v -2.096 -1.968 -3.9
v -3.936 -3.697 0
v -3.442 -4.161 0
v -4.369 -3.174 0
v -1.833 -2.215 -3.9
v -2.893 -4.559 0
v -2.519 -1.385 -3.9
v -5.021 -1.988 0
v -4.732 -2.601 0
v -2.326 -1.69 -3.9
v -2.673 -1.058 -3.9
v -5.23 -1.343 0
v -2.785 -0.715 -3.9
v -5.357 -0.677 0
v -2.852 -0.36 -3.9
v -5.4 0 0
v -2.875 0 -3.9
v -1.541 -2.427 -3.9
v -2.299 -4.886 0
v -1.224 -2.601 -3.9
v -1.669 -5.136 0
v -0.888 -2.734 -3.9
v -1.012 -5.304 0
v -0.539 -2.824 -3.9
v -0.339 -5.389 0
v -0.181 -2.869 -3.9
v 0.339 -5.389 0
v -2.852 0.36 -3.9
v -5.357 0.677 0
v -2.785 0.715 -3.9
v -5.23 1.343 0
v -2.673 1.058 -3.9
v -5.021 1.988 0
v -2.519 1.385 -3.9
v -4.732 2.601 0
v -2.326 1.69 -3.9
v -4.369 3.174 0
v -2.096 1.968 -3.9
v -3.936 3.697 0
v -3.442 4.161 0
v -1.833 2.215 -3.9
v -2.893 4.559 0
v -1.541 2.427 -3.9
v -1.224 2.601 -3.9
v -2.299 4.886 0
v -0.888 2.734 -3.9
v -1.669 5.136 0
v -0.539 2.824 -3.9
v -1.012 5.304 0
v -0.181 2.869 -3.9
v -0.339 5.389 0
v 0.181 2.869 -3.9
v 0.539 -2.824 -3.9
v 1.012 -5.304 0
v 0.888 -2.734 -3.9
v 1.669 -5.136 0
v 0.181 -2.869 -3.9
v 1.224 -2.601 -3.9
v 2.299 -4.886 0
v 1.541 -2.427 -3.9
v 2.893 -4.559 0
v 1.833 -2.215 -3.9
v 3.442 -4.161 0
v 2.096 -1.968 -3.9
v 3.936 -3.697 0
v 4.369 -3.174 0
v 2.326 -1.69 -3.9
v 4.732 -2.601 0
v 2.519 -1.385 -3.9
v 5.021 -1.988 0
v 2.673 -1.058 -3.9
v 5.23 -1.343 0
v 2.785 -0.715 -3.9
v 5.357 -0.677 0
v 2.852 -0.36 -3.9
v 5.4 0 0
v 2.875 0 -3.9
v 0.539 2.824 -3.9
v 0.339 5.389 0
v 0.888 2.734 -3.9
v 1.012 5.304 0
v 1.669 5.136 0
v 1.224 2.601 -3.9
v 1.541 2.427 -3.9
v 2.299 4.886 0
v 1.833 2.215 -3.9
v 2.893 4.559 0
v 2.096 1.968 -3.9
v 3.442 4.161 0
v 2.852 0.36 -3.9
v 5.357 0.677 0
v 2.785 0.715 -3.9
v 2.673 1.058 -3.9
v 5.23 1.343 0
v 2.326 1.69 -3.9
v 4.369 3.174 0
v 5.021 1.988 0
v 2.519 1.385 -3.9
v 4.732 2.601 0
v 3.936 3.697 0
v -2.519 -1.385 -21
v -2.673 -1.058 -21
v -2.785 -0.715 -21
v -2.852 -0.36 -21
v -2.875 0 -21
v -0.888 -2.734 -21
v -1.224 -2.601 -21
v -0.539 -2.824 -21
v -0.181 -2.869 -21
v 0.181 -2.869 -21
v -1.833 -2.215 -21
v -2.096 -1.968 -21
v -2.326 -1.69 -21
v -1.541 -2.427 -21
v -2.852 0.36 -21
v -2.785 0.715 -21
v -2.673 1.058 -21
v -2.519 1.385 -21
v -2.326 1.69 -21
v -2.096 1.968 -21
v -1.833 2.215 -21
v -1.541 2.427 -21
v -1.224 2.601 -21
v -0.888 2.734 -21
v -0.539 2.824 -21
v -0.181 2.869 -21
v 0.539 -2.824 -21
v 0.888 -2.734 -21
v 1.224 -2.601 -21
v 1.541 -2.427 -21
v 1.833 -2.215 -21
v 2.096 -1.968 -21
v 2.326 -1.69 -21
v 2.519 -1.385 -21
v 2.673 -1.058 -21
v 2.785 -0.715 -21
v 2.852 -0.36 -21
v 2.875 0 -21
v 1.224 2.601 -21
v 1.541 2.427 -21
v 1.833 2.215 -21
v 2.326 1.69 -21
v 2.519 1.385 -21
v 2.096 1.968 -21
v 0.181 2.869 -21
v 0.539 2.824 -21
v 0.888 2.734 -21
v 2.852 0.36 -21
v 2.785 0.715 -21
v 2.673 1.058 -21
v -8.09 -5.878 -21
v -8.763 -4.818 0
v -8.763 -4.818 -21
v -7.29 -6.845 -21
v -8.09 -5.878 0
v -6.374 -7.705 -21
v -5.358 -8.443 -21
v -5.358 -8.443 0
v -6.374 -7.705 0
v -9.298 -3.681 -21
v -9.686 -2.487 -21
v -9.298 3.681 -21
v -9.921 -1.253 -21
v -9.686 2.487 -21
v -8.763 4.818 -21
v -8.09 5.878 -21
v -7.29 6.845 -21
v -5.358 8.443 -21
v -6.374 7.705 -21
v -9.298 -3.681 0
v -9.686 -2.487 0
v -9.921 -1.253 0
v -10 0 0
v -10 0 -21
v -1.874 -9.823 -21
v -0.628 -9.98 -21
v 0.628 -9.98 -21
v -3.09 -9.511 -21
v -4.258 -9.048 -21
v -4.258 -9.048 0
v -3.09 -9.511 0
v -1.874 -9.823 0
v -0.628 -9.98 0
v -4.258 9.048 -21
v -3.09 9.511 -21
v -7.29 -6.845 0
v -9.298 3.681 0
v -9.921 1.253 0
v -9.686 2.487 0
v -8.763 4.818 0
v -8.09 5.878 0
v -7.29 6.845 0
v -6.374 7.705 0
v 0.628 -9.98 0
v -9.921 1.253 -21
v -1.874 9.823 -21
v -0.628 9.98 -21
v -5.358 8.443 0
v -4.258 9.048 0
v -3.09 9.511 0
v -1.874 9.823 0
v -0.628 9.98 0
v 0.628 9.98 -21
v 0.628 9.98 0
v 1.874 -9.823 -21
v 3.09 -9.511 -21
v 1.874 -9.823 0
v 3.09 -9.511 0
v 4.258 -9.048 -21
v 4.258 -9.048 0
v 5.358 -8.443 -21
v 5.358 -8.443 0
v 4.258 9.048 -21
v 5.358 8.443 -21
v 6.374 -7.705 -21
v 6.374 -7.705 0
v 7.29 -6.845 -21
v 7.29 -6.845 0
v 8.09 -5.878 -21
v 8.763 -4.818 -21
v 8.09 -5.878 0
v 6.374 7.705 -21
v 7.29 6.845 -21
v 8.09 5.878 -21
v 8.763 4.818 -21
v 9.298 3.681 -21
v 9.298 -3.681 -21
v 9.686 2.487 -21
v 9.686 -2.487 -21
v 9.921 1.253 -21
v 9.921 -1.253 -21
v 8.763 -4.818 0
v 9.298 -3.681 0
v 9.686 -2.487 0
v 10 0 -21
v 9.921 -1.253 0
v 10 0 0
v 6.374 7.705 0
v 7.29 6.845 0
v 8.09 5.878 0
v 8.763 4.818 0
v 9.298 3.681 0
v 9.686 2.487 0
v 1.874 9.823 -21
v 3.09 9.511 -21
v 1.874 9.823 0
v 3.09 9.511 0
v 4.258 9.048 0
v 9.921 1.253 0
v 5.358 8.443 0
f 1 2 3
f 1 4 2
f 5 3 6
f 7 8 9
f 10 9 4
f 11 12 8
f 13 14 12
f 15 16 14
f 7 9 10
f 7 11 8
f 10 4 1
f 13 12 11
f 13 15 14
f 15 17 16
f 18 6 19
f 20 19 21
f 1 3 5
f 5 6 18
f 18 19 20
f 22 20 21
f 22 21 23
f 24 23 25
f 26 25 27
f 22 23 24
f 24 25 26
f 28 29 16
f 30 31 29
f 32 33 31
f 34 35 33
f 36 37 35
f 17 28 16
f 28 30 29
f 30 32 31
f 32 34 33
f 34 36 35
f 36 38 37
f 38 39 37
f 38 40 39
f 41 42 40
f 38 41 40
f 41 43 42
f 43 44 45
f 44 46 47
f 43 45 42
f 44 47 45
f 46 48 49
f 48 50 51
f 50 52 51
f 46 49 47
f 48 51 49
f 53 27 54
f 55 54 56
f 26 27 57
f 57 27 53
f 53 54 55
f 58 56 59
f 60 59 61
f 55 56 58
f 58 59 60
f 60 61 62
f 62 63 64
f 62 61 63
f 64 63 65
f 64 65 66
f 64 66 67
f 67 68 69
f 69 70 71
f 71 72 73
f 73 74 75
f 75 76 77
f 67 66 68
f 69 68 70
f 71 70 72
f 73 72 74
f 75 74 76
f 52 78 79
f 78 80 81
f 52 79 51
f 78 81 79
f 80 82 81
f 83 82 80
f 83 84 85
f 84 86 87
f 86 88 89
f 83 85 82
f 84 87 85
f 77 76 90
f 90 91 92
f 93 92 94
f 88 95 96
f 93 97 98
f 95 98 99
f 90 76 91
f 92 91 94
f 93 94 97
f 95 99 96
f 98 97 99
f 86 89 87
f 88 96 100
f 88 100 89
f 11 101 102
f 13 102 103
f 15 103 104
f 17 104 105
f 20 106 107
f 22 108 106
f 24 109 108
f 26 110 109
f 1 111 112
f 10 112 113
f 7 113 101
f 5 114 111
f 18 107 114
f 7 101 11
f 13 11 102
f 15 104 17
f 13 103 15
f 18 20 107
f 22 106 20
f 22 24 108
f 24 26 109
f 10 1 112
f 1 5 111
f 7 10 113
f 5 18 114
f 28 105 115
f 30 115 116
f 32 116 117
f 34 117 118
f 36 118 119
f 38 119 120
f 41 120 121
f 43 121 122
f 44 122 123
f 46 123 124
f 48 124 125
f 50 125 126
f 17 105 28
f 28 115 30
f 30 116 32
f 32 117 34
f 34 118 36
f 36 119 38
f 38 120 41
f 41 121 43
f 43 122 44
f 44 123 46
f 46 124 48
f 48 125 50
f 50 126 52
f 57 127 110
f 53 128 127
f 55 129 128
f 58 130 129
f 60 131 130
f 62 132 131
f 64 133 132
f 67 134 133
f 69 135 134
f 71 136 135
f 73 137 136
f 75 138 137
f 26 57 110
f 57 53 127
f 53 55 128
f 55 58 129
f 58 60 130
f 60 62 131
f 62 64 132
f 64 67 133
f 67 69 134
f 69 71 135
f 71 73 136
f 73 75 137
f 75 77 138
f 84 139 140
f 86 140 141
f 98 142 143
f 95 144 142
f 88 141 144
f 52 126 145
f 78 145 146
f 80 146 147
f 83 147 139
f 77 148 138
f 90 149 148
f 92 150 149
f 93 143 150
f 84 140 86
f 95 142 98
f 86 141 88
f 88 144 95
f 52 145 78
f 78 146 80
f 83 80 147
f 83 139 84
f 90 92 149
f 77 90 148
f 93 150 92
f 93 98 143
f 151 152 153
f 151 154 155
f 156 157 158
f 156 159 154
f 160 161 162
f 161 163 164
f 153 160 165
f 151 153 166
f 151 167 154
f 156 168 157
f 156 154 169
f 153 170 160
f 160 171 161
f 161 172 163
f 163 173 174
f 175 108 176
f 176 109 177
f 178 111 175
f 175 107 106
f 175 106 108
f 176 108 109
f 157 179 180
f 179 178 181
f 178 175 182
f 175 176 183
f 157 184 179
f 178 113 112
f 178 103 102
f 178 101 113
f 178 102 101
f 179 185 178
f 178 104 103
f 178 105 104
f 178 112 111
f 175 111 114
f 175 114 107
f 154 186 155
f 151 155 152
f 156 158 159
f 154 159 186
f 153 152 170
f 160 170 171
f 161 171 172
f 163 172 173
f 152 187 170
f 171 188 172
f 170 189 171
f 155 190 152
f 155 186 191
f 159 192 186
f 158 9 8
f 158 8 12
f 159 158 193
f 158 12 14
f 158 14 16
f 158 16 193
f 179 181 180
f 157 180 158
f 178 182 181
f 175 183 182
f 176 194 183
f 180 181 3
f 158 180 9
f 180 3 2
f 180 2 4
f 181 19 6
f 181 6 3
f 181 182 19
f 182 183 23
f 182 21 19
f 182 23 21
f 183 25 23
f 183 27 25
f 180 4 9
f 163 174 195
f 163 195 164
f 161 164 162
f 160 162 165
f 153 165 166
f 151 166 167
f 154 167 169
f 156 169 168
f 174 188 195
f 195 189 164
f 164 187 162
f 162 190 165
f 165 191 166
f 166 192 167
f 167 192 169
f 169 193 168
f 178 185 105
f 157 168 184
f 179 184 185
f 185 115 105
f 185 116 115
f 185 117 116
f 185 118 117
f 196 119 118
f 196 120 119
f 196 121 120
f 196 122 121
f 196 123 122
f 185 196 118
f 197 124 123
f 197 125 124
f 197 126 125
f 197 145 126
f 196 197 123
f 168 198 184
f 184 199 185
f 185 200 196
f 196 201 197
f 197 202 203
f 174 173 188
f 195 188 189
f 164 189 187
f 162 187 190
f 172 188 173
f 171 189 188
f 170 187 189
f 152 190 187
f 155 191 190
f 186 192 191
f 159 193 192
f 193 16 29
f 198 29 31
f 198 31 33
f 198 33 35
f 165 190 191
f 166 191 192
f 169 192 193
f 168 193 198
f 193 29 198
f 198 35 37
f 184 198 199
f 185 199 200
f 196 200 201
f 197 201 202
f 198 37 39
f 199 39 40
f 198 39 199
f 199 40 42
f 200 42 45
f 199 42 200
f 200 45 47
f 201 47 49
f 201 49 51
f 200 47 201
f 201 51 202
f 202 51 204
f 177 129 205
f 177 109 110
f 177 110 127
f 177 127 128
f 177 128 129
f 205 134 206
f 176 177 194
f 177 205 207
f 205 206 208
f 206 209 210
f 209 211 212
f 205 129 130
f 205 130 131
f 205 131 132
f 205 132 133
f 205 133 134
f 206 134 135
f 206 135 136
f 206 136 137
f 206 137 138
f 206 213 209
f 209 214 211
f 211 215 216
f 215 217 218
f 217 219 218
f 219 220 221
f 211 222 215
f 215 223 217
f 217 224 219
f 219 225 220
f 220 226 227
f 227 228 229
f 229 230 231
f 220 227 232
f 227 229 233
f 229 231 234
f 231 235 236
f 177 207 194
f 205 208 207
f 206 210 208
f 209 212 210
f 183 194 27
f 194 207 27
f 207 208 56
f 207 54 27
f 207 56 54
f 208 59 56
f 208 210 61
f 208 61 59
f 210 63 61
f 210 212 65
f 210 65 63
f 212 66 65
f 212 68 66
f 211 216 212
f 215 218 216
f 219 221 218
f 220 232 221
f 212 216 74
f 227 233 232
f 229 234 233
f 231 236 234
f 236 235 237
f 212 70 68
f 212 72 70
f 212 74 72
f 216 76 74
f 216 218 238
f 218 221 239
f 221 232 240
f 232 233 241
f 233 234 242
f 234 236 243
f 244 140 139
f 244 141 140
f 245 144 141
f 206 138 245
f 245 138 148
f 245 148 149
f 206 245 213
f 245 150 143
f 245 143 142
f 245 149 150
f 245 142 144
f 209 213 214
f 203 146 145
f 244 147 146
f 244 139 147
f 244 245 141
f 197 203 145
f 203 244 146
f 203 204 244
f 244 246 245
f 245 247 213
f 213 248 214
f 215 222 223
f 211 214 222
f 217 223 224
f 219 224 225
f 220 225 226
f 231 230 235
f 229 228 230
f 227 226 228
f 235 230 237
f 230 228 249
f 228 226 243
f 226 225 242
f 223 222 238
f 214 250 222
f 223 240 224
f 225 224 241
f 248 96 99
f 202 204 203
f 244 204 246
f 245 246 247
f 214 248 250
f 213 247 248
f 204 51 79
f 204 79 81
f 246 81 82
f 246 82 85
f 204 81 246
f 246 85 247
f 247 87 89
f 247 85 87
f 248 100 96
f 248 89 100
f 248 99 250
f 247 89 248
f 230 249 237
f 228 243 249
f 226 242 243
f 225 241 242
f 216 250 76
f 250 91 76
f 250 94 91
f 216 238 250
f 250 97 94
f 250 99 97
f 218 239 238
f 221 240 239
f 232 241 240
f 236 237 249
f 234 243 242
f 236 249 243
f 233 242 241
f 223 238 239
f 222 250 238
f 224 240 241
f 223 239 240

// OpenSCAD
$fn = 50;


difference() {
	union() {
		translate(v = [0, 0, -21.0000000000]) {
			cylinder(h = 21, r = 10.0000000000);
		}
	}
	union() {
		translate(v = [0, 0, 0]) {
			rotate(a = [0, 0, 0]) {
				difference() {
					union() {
						translate(v = [0, 0, -24.0000000000]) {
							cylinder(h = 24, r = 2.6000000000);
						}
						translate(v = [0, 0, -3.9000000000]) {
							cylinder(h = 3.9000000000, r1 = 2.8750000000, r2 = 5.4000000000);
						}
						translate(v = [0, 0, -24.0000000000]) {
							cylinder(h = 24, r = 2.8750000000);
						}
						translate(v = [0, 0, -24.0000000000]) {
							cylinder(h = 24, r = 2.6000000000);
						}
					}
					union();
				}
			}
		}
	}
}
